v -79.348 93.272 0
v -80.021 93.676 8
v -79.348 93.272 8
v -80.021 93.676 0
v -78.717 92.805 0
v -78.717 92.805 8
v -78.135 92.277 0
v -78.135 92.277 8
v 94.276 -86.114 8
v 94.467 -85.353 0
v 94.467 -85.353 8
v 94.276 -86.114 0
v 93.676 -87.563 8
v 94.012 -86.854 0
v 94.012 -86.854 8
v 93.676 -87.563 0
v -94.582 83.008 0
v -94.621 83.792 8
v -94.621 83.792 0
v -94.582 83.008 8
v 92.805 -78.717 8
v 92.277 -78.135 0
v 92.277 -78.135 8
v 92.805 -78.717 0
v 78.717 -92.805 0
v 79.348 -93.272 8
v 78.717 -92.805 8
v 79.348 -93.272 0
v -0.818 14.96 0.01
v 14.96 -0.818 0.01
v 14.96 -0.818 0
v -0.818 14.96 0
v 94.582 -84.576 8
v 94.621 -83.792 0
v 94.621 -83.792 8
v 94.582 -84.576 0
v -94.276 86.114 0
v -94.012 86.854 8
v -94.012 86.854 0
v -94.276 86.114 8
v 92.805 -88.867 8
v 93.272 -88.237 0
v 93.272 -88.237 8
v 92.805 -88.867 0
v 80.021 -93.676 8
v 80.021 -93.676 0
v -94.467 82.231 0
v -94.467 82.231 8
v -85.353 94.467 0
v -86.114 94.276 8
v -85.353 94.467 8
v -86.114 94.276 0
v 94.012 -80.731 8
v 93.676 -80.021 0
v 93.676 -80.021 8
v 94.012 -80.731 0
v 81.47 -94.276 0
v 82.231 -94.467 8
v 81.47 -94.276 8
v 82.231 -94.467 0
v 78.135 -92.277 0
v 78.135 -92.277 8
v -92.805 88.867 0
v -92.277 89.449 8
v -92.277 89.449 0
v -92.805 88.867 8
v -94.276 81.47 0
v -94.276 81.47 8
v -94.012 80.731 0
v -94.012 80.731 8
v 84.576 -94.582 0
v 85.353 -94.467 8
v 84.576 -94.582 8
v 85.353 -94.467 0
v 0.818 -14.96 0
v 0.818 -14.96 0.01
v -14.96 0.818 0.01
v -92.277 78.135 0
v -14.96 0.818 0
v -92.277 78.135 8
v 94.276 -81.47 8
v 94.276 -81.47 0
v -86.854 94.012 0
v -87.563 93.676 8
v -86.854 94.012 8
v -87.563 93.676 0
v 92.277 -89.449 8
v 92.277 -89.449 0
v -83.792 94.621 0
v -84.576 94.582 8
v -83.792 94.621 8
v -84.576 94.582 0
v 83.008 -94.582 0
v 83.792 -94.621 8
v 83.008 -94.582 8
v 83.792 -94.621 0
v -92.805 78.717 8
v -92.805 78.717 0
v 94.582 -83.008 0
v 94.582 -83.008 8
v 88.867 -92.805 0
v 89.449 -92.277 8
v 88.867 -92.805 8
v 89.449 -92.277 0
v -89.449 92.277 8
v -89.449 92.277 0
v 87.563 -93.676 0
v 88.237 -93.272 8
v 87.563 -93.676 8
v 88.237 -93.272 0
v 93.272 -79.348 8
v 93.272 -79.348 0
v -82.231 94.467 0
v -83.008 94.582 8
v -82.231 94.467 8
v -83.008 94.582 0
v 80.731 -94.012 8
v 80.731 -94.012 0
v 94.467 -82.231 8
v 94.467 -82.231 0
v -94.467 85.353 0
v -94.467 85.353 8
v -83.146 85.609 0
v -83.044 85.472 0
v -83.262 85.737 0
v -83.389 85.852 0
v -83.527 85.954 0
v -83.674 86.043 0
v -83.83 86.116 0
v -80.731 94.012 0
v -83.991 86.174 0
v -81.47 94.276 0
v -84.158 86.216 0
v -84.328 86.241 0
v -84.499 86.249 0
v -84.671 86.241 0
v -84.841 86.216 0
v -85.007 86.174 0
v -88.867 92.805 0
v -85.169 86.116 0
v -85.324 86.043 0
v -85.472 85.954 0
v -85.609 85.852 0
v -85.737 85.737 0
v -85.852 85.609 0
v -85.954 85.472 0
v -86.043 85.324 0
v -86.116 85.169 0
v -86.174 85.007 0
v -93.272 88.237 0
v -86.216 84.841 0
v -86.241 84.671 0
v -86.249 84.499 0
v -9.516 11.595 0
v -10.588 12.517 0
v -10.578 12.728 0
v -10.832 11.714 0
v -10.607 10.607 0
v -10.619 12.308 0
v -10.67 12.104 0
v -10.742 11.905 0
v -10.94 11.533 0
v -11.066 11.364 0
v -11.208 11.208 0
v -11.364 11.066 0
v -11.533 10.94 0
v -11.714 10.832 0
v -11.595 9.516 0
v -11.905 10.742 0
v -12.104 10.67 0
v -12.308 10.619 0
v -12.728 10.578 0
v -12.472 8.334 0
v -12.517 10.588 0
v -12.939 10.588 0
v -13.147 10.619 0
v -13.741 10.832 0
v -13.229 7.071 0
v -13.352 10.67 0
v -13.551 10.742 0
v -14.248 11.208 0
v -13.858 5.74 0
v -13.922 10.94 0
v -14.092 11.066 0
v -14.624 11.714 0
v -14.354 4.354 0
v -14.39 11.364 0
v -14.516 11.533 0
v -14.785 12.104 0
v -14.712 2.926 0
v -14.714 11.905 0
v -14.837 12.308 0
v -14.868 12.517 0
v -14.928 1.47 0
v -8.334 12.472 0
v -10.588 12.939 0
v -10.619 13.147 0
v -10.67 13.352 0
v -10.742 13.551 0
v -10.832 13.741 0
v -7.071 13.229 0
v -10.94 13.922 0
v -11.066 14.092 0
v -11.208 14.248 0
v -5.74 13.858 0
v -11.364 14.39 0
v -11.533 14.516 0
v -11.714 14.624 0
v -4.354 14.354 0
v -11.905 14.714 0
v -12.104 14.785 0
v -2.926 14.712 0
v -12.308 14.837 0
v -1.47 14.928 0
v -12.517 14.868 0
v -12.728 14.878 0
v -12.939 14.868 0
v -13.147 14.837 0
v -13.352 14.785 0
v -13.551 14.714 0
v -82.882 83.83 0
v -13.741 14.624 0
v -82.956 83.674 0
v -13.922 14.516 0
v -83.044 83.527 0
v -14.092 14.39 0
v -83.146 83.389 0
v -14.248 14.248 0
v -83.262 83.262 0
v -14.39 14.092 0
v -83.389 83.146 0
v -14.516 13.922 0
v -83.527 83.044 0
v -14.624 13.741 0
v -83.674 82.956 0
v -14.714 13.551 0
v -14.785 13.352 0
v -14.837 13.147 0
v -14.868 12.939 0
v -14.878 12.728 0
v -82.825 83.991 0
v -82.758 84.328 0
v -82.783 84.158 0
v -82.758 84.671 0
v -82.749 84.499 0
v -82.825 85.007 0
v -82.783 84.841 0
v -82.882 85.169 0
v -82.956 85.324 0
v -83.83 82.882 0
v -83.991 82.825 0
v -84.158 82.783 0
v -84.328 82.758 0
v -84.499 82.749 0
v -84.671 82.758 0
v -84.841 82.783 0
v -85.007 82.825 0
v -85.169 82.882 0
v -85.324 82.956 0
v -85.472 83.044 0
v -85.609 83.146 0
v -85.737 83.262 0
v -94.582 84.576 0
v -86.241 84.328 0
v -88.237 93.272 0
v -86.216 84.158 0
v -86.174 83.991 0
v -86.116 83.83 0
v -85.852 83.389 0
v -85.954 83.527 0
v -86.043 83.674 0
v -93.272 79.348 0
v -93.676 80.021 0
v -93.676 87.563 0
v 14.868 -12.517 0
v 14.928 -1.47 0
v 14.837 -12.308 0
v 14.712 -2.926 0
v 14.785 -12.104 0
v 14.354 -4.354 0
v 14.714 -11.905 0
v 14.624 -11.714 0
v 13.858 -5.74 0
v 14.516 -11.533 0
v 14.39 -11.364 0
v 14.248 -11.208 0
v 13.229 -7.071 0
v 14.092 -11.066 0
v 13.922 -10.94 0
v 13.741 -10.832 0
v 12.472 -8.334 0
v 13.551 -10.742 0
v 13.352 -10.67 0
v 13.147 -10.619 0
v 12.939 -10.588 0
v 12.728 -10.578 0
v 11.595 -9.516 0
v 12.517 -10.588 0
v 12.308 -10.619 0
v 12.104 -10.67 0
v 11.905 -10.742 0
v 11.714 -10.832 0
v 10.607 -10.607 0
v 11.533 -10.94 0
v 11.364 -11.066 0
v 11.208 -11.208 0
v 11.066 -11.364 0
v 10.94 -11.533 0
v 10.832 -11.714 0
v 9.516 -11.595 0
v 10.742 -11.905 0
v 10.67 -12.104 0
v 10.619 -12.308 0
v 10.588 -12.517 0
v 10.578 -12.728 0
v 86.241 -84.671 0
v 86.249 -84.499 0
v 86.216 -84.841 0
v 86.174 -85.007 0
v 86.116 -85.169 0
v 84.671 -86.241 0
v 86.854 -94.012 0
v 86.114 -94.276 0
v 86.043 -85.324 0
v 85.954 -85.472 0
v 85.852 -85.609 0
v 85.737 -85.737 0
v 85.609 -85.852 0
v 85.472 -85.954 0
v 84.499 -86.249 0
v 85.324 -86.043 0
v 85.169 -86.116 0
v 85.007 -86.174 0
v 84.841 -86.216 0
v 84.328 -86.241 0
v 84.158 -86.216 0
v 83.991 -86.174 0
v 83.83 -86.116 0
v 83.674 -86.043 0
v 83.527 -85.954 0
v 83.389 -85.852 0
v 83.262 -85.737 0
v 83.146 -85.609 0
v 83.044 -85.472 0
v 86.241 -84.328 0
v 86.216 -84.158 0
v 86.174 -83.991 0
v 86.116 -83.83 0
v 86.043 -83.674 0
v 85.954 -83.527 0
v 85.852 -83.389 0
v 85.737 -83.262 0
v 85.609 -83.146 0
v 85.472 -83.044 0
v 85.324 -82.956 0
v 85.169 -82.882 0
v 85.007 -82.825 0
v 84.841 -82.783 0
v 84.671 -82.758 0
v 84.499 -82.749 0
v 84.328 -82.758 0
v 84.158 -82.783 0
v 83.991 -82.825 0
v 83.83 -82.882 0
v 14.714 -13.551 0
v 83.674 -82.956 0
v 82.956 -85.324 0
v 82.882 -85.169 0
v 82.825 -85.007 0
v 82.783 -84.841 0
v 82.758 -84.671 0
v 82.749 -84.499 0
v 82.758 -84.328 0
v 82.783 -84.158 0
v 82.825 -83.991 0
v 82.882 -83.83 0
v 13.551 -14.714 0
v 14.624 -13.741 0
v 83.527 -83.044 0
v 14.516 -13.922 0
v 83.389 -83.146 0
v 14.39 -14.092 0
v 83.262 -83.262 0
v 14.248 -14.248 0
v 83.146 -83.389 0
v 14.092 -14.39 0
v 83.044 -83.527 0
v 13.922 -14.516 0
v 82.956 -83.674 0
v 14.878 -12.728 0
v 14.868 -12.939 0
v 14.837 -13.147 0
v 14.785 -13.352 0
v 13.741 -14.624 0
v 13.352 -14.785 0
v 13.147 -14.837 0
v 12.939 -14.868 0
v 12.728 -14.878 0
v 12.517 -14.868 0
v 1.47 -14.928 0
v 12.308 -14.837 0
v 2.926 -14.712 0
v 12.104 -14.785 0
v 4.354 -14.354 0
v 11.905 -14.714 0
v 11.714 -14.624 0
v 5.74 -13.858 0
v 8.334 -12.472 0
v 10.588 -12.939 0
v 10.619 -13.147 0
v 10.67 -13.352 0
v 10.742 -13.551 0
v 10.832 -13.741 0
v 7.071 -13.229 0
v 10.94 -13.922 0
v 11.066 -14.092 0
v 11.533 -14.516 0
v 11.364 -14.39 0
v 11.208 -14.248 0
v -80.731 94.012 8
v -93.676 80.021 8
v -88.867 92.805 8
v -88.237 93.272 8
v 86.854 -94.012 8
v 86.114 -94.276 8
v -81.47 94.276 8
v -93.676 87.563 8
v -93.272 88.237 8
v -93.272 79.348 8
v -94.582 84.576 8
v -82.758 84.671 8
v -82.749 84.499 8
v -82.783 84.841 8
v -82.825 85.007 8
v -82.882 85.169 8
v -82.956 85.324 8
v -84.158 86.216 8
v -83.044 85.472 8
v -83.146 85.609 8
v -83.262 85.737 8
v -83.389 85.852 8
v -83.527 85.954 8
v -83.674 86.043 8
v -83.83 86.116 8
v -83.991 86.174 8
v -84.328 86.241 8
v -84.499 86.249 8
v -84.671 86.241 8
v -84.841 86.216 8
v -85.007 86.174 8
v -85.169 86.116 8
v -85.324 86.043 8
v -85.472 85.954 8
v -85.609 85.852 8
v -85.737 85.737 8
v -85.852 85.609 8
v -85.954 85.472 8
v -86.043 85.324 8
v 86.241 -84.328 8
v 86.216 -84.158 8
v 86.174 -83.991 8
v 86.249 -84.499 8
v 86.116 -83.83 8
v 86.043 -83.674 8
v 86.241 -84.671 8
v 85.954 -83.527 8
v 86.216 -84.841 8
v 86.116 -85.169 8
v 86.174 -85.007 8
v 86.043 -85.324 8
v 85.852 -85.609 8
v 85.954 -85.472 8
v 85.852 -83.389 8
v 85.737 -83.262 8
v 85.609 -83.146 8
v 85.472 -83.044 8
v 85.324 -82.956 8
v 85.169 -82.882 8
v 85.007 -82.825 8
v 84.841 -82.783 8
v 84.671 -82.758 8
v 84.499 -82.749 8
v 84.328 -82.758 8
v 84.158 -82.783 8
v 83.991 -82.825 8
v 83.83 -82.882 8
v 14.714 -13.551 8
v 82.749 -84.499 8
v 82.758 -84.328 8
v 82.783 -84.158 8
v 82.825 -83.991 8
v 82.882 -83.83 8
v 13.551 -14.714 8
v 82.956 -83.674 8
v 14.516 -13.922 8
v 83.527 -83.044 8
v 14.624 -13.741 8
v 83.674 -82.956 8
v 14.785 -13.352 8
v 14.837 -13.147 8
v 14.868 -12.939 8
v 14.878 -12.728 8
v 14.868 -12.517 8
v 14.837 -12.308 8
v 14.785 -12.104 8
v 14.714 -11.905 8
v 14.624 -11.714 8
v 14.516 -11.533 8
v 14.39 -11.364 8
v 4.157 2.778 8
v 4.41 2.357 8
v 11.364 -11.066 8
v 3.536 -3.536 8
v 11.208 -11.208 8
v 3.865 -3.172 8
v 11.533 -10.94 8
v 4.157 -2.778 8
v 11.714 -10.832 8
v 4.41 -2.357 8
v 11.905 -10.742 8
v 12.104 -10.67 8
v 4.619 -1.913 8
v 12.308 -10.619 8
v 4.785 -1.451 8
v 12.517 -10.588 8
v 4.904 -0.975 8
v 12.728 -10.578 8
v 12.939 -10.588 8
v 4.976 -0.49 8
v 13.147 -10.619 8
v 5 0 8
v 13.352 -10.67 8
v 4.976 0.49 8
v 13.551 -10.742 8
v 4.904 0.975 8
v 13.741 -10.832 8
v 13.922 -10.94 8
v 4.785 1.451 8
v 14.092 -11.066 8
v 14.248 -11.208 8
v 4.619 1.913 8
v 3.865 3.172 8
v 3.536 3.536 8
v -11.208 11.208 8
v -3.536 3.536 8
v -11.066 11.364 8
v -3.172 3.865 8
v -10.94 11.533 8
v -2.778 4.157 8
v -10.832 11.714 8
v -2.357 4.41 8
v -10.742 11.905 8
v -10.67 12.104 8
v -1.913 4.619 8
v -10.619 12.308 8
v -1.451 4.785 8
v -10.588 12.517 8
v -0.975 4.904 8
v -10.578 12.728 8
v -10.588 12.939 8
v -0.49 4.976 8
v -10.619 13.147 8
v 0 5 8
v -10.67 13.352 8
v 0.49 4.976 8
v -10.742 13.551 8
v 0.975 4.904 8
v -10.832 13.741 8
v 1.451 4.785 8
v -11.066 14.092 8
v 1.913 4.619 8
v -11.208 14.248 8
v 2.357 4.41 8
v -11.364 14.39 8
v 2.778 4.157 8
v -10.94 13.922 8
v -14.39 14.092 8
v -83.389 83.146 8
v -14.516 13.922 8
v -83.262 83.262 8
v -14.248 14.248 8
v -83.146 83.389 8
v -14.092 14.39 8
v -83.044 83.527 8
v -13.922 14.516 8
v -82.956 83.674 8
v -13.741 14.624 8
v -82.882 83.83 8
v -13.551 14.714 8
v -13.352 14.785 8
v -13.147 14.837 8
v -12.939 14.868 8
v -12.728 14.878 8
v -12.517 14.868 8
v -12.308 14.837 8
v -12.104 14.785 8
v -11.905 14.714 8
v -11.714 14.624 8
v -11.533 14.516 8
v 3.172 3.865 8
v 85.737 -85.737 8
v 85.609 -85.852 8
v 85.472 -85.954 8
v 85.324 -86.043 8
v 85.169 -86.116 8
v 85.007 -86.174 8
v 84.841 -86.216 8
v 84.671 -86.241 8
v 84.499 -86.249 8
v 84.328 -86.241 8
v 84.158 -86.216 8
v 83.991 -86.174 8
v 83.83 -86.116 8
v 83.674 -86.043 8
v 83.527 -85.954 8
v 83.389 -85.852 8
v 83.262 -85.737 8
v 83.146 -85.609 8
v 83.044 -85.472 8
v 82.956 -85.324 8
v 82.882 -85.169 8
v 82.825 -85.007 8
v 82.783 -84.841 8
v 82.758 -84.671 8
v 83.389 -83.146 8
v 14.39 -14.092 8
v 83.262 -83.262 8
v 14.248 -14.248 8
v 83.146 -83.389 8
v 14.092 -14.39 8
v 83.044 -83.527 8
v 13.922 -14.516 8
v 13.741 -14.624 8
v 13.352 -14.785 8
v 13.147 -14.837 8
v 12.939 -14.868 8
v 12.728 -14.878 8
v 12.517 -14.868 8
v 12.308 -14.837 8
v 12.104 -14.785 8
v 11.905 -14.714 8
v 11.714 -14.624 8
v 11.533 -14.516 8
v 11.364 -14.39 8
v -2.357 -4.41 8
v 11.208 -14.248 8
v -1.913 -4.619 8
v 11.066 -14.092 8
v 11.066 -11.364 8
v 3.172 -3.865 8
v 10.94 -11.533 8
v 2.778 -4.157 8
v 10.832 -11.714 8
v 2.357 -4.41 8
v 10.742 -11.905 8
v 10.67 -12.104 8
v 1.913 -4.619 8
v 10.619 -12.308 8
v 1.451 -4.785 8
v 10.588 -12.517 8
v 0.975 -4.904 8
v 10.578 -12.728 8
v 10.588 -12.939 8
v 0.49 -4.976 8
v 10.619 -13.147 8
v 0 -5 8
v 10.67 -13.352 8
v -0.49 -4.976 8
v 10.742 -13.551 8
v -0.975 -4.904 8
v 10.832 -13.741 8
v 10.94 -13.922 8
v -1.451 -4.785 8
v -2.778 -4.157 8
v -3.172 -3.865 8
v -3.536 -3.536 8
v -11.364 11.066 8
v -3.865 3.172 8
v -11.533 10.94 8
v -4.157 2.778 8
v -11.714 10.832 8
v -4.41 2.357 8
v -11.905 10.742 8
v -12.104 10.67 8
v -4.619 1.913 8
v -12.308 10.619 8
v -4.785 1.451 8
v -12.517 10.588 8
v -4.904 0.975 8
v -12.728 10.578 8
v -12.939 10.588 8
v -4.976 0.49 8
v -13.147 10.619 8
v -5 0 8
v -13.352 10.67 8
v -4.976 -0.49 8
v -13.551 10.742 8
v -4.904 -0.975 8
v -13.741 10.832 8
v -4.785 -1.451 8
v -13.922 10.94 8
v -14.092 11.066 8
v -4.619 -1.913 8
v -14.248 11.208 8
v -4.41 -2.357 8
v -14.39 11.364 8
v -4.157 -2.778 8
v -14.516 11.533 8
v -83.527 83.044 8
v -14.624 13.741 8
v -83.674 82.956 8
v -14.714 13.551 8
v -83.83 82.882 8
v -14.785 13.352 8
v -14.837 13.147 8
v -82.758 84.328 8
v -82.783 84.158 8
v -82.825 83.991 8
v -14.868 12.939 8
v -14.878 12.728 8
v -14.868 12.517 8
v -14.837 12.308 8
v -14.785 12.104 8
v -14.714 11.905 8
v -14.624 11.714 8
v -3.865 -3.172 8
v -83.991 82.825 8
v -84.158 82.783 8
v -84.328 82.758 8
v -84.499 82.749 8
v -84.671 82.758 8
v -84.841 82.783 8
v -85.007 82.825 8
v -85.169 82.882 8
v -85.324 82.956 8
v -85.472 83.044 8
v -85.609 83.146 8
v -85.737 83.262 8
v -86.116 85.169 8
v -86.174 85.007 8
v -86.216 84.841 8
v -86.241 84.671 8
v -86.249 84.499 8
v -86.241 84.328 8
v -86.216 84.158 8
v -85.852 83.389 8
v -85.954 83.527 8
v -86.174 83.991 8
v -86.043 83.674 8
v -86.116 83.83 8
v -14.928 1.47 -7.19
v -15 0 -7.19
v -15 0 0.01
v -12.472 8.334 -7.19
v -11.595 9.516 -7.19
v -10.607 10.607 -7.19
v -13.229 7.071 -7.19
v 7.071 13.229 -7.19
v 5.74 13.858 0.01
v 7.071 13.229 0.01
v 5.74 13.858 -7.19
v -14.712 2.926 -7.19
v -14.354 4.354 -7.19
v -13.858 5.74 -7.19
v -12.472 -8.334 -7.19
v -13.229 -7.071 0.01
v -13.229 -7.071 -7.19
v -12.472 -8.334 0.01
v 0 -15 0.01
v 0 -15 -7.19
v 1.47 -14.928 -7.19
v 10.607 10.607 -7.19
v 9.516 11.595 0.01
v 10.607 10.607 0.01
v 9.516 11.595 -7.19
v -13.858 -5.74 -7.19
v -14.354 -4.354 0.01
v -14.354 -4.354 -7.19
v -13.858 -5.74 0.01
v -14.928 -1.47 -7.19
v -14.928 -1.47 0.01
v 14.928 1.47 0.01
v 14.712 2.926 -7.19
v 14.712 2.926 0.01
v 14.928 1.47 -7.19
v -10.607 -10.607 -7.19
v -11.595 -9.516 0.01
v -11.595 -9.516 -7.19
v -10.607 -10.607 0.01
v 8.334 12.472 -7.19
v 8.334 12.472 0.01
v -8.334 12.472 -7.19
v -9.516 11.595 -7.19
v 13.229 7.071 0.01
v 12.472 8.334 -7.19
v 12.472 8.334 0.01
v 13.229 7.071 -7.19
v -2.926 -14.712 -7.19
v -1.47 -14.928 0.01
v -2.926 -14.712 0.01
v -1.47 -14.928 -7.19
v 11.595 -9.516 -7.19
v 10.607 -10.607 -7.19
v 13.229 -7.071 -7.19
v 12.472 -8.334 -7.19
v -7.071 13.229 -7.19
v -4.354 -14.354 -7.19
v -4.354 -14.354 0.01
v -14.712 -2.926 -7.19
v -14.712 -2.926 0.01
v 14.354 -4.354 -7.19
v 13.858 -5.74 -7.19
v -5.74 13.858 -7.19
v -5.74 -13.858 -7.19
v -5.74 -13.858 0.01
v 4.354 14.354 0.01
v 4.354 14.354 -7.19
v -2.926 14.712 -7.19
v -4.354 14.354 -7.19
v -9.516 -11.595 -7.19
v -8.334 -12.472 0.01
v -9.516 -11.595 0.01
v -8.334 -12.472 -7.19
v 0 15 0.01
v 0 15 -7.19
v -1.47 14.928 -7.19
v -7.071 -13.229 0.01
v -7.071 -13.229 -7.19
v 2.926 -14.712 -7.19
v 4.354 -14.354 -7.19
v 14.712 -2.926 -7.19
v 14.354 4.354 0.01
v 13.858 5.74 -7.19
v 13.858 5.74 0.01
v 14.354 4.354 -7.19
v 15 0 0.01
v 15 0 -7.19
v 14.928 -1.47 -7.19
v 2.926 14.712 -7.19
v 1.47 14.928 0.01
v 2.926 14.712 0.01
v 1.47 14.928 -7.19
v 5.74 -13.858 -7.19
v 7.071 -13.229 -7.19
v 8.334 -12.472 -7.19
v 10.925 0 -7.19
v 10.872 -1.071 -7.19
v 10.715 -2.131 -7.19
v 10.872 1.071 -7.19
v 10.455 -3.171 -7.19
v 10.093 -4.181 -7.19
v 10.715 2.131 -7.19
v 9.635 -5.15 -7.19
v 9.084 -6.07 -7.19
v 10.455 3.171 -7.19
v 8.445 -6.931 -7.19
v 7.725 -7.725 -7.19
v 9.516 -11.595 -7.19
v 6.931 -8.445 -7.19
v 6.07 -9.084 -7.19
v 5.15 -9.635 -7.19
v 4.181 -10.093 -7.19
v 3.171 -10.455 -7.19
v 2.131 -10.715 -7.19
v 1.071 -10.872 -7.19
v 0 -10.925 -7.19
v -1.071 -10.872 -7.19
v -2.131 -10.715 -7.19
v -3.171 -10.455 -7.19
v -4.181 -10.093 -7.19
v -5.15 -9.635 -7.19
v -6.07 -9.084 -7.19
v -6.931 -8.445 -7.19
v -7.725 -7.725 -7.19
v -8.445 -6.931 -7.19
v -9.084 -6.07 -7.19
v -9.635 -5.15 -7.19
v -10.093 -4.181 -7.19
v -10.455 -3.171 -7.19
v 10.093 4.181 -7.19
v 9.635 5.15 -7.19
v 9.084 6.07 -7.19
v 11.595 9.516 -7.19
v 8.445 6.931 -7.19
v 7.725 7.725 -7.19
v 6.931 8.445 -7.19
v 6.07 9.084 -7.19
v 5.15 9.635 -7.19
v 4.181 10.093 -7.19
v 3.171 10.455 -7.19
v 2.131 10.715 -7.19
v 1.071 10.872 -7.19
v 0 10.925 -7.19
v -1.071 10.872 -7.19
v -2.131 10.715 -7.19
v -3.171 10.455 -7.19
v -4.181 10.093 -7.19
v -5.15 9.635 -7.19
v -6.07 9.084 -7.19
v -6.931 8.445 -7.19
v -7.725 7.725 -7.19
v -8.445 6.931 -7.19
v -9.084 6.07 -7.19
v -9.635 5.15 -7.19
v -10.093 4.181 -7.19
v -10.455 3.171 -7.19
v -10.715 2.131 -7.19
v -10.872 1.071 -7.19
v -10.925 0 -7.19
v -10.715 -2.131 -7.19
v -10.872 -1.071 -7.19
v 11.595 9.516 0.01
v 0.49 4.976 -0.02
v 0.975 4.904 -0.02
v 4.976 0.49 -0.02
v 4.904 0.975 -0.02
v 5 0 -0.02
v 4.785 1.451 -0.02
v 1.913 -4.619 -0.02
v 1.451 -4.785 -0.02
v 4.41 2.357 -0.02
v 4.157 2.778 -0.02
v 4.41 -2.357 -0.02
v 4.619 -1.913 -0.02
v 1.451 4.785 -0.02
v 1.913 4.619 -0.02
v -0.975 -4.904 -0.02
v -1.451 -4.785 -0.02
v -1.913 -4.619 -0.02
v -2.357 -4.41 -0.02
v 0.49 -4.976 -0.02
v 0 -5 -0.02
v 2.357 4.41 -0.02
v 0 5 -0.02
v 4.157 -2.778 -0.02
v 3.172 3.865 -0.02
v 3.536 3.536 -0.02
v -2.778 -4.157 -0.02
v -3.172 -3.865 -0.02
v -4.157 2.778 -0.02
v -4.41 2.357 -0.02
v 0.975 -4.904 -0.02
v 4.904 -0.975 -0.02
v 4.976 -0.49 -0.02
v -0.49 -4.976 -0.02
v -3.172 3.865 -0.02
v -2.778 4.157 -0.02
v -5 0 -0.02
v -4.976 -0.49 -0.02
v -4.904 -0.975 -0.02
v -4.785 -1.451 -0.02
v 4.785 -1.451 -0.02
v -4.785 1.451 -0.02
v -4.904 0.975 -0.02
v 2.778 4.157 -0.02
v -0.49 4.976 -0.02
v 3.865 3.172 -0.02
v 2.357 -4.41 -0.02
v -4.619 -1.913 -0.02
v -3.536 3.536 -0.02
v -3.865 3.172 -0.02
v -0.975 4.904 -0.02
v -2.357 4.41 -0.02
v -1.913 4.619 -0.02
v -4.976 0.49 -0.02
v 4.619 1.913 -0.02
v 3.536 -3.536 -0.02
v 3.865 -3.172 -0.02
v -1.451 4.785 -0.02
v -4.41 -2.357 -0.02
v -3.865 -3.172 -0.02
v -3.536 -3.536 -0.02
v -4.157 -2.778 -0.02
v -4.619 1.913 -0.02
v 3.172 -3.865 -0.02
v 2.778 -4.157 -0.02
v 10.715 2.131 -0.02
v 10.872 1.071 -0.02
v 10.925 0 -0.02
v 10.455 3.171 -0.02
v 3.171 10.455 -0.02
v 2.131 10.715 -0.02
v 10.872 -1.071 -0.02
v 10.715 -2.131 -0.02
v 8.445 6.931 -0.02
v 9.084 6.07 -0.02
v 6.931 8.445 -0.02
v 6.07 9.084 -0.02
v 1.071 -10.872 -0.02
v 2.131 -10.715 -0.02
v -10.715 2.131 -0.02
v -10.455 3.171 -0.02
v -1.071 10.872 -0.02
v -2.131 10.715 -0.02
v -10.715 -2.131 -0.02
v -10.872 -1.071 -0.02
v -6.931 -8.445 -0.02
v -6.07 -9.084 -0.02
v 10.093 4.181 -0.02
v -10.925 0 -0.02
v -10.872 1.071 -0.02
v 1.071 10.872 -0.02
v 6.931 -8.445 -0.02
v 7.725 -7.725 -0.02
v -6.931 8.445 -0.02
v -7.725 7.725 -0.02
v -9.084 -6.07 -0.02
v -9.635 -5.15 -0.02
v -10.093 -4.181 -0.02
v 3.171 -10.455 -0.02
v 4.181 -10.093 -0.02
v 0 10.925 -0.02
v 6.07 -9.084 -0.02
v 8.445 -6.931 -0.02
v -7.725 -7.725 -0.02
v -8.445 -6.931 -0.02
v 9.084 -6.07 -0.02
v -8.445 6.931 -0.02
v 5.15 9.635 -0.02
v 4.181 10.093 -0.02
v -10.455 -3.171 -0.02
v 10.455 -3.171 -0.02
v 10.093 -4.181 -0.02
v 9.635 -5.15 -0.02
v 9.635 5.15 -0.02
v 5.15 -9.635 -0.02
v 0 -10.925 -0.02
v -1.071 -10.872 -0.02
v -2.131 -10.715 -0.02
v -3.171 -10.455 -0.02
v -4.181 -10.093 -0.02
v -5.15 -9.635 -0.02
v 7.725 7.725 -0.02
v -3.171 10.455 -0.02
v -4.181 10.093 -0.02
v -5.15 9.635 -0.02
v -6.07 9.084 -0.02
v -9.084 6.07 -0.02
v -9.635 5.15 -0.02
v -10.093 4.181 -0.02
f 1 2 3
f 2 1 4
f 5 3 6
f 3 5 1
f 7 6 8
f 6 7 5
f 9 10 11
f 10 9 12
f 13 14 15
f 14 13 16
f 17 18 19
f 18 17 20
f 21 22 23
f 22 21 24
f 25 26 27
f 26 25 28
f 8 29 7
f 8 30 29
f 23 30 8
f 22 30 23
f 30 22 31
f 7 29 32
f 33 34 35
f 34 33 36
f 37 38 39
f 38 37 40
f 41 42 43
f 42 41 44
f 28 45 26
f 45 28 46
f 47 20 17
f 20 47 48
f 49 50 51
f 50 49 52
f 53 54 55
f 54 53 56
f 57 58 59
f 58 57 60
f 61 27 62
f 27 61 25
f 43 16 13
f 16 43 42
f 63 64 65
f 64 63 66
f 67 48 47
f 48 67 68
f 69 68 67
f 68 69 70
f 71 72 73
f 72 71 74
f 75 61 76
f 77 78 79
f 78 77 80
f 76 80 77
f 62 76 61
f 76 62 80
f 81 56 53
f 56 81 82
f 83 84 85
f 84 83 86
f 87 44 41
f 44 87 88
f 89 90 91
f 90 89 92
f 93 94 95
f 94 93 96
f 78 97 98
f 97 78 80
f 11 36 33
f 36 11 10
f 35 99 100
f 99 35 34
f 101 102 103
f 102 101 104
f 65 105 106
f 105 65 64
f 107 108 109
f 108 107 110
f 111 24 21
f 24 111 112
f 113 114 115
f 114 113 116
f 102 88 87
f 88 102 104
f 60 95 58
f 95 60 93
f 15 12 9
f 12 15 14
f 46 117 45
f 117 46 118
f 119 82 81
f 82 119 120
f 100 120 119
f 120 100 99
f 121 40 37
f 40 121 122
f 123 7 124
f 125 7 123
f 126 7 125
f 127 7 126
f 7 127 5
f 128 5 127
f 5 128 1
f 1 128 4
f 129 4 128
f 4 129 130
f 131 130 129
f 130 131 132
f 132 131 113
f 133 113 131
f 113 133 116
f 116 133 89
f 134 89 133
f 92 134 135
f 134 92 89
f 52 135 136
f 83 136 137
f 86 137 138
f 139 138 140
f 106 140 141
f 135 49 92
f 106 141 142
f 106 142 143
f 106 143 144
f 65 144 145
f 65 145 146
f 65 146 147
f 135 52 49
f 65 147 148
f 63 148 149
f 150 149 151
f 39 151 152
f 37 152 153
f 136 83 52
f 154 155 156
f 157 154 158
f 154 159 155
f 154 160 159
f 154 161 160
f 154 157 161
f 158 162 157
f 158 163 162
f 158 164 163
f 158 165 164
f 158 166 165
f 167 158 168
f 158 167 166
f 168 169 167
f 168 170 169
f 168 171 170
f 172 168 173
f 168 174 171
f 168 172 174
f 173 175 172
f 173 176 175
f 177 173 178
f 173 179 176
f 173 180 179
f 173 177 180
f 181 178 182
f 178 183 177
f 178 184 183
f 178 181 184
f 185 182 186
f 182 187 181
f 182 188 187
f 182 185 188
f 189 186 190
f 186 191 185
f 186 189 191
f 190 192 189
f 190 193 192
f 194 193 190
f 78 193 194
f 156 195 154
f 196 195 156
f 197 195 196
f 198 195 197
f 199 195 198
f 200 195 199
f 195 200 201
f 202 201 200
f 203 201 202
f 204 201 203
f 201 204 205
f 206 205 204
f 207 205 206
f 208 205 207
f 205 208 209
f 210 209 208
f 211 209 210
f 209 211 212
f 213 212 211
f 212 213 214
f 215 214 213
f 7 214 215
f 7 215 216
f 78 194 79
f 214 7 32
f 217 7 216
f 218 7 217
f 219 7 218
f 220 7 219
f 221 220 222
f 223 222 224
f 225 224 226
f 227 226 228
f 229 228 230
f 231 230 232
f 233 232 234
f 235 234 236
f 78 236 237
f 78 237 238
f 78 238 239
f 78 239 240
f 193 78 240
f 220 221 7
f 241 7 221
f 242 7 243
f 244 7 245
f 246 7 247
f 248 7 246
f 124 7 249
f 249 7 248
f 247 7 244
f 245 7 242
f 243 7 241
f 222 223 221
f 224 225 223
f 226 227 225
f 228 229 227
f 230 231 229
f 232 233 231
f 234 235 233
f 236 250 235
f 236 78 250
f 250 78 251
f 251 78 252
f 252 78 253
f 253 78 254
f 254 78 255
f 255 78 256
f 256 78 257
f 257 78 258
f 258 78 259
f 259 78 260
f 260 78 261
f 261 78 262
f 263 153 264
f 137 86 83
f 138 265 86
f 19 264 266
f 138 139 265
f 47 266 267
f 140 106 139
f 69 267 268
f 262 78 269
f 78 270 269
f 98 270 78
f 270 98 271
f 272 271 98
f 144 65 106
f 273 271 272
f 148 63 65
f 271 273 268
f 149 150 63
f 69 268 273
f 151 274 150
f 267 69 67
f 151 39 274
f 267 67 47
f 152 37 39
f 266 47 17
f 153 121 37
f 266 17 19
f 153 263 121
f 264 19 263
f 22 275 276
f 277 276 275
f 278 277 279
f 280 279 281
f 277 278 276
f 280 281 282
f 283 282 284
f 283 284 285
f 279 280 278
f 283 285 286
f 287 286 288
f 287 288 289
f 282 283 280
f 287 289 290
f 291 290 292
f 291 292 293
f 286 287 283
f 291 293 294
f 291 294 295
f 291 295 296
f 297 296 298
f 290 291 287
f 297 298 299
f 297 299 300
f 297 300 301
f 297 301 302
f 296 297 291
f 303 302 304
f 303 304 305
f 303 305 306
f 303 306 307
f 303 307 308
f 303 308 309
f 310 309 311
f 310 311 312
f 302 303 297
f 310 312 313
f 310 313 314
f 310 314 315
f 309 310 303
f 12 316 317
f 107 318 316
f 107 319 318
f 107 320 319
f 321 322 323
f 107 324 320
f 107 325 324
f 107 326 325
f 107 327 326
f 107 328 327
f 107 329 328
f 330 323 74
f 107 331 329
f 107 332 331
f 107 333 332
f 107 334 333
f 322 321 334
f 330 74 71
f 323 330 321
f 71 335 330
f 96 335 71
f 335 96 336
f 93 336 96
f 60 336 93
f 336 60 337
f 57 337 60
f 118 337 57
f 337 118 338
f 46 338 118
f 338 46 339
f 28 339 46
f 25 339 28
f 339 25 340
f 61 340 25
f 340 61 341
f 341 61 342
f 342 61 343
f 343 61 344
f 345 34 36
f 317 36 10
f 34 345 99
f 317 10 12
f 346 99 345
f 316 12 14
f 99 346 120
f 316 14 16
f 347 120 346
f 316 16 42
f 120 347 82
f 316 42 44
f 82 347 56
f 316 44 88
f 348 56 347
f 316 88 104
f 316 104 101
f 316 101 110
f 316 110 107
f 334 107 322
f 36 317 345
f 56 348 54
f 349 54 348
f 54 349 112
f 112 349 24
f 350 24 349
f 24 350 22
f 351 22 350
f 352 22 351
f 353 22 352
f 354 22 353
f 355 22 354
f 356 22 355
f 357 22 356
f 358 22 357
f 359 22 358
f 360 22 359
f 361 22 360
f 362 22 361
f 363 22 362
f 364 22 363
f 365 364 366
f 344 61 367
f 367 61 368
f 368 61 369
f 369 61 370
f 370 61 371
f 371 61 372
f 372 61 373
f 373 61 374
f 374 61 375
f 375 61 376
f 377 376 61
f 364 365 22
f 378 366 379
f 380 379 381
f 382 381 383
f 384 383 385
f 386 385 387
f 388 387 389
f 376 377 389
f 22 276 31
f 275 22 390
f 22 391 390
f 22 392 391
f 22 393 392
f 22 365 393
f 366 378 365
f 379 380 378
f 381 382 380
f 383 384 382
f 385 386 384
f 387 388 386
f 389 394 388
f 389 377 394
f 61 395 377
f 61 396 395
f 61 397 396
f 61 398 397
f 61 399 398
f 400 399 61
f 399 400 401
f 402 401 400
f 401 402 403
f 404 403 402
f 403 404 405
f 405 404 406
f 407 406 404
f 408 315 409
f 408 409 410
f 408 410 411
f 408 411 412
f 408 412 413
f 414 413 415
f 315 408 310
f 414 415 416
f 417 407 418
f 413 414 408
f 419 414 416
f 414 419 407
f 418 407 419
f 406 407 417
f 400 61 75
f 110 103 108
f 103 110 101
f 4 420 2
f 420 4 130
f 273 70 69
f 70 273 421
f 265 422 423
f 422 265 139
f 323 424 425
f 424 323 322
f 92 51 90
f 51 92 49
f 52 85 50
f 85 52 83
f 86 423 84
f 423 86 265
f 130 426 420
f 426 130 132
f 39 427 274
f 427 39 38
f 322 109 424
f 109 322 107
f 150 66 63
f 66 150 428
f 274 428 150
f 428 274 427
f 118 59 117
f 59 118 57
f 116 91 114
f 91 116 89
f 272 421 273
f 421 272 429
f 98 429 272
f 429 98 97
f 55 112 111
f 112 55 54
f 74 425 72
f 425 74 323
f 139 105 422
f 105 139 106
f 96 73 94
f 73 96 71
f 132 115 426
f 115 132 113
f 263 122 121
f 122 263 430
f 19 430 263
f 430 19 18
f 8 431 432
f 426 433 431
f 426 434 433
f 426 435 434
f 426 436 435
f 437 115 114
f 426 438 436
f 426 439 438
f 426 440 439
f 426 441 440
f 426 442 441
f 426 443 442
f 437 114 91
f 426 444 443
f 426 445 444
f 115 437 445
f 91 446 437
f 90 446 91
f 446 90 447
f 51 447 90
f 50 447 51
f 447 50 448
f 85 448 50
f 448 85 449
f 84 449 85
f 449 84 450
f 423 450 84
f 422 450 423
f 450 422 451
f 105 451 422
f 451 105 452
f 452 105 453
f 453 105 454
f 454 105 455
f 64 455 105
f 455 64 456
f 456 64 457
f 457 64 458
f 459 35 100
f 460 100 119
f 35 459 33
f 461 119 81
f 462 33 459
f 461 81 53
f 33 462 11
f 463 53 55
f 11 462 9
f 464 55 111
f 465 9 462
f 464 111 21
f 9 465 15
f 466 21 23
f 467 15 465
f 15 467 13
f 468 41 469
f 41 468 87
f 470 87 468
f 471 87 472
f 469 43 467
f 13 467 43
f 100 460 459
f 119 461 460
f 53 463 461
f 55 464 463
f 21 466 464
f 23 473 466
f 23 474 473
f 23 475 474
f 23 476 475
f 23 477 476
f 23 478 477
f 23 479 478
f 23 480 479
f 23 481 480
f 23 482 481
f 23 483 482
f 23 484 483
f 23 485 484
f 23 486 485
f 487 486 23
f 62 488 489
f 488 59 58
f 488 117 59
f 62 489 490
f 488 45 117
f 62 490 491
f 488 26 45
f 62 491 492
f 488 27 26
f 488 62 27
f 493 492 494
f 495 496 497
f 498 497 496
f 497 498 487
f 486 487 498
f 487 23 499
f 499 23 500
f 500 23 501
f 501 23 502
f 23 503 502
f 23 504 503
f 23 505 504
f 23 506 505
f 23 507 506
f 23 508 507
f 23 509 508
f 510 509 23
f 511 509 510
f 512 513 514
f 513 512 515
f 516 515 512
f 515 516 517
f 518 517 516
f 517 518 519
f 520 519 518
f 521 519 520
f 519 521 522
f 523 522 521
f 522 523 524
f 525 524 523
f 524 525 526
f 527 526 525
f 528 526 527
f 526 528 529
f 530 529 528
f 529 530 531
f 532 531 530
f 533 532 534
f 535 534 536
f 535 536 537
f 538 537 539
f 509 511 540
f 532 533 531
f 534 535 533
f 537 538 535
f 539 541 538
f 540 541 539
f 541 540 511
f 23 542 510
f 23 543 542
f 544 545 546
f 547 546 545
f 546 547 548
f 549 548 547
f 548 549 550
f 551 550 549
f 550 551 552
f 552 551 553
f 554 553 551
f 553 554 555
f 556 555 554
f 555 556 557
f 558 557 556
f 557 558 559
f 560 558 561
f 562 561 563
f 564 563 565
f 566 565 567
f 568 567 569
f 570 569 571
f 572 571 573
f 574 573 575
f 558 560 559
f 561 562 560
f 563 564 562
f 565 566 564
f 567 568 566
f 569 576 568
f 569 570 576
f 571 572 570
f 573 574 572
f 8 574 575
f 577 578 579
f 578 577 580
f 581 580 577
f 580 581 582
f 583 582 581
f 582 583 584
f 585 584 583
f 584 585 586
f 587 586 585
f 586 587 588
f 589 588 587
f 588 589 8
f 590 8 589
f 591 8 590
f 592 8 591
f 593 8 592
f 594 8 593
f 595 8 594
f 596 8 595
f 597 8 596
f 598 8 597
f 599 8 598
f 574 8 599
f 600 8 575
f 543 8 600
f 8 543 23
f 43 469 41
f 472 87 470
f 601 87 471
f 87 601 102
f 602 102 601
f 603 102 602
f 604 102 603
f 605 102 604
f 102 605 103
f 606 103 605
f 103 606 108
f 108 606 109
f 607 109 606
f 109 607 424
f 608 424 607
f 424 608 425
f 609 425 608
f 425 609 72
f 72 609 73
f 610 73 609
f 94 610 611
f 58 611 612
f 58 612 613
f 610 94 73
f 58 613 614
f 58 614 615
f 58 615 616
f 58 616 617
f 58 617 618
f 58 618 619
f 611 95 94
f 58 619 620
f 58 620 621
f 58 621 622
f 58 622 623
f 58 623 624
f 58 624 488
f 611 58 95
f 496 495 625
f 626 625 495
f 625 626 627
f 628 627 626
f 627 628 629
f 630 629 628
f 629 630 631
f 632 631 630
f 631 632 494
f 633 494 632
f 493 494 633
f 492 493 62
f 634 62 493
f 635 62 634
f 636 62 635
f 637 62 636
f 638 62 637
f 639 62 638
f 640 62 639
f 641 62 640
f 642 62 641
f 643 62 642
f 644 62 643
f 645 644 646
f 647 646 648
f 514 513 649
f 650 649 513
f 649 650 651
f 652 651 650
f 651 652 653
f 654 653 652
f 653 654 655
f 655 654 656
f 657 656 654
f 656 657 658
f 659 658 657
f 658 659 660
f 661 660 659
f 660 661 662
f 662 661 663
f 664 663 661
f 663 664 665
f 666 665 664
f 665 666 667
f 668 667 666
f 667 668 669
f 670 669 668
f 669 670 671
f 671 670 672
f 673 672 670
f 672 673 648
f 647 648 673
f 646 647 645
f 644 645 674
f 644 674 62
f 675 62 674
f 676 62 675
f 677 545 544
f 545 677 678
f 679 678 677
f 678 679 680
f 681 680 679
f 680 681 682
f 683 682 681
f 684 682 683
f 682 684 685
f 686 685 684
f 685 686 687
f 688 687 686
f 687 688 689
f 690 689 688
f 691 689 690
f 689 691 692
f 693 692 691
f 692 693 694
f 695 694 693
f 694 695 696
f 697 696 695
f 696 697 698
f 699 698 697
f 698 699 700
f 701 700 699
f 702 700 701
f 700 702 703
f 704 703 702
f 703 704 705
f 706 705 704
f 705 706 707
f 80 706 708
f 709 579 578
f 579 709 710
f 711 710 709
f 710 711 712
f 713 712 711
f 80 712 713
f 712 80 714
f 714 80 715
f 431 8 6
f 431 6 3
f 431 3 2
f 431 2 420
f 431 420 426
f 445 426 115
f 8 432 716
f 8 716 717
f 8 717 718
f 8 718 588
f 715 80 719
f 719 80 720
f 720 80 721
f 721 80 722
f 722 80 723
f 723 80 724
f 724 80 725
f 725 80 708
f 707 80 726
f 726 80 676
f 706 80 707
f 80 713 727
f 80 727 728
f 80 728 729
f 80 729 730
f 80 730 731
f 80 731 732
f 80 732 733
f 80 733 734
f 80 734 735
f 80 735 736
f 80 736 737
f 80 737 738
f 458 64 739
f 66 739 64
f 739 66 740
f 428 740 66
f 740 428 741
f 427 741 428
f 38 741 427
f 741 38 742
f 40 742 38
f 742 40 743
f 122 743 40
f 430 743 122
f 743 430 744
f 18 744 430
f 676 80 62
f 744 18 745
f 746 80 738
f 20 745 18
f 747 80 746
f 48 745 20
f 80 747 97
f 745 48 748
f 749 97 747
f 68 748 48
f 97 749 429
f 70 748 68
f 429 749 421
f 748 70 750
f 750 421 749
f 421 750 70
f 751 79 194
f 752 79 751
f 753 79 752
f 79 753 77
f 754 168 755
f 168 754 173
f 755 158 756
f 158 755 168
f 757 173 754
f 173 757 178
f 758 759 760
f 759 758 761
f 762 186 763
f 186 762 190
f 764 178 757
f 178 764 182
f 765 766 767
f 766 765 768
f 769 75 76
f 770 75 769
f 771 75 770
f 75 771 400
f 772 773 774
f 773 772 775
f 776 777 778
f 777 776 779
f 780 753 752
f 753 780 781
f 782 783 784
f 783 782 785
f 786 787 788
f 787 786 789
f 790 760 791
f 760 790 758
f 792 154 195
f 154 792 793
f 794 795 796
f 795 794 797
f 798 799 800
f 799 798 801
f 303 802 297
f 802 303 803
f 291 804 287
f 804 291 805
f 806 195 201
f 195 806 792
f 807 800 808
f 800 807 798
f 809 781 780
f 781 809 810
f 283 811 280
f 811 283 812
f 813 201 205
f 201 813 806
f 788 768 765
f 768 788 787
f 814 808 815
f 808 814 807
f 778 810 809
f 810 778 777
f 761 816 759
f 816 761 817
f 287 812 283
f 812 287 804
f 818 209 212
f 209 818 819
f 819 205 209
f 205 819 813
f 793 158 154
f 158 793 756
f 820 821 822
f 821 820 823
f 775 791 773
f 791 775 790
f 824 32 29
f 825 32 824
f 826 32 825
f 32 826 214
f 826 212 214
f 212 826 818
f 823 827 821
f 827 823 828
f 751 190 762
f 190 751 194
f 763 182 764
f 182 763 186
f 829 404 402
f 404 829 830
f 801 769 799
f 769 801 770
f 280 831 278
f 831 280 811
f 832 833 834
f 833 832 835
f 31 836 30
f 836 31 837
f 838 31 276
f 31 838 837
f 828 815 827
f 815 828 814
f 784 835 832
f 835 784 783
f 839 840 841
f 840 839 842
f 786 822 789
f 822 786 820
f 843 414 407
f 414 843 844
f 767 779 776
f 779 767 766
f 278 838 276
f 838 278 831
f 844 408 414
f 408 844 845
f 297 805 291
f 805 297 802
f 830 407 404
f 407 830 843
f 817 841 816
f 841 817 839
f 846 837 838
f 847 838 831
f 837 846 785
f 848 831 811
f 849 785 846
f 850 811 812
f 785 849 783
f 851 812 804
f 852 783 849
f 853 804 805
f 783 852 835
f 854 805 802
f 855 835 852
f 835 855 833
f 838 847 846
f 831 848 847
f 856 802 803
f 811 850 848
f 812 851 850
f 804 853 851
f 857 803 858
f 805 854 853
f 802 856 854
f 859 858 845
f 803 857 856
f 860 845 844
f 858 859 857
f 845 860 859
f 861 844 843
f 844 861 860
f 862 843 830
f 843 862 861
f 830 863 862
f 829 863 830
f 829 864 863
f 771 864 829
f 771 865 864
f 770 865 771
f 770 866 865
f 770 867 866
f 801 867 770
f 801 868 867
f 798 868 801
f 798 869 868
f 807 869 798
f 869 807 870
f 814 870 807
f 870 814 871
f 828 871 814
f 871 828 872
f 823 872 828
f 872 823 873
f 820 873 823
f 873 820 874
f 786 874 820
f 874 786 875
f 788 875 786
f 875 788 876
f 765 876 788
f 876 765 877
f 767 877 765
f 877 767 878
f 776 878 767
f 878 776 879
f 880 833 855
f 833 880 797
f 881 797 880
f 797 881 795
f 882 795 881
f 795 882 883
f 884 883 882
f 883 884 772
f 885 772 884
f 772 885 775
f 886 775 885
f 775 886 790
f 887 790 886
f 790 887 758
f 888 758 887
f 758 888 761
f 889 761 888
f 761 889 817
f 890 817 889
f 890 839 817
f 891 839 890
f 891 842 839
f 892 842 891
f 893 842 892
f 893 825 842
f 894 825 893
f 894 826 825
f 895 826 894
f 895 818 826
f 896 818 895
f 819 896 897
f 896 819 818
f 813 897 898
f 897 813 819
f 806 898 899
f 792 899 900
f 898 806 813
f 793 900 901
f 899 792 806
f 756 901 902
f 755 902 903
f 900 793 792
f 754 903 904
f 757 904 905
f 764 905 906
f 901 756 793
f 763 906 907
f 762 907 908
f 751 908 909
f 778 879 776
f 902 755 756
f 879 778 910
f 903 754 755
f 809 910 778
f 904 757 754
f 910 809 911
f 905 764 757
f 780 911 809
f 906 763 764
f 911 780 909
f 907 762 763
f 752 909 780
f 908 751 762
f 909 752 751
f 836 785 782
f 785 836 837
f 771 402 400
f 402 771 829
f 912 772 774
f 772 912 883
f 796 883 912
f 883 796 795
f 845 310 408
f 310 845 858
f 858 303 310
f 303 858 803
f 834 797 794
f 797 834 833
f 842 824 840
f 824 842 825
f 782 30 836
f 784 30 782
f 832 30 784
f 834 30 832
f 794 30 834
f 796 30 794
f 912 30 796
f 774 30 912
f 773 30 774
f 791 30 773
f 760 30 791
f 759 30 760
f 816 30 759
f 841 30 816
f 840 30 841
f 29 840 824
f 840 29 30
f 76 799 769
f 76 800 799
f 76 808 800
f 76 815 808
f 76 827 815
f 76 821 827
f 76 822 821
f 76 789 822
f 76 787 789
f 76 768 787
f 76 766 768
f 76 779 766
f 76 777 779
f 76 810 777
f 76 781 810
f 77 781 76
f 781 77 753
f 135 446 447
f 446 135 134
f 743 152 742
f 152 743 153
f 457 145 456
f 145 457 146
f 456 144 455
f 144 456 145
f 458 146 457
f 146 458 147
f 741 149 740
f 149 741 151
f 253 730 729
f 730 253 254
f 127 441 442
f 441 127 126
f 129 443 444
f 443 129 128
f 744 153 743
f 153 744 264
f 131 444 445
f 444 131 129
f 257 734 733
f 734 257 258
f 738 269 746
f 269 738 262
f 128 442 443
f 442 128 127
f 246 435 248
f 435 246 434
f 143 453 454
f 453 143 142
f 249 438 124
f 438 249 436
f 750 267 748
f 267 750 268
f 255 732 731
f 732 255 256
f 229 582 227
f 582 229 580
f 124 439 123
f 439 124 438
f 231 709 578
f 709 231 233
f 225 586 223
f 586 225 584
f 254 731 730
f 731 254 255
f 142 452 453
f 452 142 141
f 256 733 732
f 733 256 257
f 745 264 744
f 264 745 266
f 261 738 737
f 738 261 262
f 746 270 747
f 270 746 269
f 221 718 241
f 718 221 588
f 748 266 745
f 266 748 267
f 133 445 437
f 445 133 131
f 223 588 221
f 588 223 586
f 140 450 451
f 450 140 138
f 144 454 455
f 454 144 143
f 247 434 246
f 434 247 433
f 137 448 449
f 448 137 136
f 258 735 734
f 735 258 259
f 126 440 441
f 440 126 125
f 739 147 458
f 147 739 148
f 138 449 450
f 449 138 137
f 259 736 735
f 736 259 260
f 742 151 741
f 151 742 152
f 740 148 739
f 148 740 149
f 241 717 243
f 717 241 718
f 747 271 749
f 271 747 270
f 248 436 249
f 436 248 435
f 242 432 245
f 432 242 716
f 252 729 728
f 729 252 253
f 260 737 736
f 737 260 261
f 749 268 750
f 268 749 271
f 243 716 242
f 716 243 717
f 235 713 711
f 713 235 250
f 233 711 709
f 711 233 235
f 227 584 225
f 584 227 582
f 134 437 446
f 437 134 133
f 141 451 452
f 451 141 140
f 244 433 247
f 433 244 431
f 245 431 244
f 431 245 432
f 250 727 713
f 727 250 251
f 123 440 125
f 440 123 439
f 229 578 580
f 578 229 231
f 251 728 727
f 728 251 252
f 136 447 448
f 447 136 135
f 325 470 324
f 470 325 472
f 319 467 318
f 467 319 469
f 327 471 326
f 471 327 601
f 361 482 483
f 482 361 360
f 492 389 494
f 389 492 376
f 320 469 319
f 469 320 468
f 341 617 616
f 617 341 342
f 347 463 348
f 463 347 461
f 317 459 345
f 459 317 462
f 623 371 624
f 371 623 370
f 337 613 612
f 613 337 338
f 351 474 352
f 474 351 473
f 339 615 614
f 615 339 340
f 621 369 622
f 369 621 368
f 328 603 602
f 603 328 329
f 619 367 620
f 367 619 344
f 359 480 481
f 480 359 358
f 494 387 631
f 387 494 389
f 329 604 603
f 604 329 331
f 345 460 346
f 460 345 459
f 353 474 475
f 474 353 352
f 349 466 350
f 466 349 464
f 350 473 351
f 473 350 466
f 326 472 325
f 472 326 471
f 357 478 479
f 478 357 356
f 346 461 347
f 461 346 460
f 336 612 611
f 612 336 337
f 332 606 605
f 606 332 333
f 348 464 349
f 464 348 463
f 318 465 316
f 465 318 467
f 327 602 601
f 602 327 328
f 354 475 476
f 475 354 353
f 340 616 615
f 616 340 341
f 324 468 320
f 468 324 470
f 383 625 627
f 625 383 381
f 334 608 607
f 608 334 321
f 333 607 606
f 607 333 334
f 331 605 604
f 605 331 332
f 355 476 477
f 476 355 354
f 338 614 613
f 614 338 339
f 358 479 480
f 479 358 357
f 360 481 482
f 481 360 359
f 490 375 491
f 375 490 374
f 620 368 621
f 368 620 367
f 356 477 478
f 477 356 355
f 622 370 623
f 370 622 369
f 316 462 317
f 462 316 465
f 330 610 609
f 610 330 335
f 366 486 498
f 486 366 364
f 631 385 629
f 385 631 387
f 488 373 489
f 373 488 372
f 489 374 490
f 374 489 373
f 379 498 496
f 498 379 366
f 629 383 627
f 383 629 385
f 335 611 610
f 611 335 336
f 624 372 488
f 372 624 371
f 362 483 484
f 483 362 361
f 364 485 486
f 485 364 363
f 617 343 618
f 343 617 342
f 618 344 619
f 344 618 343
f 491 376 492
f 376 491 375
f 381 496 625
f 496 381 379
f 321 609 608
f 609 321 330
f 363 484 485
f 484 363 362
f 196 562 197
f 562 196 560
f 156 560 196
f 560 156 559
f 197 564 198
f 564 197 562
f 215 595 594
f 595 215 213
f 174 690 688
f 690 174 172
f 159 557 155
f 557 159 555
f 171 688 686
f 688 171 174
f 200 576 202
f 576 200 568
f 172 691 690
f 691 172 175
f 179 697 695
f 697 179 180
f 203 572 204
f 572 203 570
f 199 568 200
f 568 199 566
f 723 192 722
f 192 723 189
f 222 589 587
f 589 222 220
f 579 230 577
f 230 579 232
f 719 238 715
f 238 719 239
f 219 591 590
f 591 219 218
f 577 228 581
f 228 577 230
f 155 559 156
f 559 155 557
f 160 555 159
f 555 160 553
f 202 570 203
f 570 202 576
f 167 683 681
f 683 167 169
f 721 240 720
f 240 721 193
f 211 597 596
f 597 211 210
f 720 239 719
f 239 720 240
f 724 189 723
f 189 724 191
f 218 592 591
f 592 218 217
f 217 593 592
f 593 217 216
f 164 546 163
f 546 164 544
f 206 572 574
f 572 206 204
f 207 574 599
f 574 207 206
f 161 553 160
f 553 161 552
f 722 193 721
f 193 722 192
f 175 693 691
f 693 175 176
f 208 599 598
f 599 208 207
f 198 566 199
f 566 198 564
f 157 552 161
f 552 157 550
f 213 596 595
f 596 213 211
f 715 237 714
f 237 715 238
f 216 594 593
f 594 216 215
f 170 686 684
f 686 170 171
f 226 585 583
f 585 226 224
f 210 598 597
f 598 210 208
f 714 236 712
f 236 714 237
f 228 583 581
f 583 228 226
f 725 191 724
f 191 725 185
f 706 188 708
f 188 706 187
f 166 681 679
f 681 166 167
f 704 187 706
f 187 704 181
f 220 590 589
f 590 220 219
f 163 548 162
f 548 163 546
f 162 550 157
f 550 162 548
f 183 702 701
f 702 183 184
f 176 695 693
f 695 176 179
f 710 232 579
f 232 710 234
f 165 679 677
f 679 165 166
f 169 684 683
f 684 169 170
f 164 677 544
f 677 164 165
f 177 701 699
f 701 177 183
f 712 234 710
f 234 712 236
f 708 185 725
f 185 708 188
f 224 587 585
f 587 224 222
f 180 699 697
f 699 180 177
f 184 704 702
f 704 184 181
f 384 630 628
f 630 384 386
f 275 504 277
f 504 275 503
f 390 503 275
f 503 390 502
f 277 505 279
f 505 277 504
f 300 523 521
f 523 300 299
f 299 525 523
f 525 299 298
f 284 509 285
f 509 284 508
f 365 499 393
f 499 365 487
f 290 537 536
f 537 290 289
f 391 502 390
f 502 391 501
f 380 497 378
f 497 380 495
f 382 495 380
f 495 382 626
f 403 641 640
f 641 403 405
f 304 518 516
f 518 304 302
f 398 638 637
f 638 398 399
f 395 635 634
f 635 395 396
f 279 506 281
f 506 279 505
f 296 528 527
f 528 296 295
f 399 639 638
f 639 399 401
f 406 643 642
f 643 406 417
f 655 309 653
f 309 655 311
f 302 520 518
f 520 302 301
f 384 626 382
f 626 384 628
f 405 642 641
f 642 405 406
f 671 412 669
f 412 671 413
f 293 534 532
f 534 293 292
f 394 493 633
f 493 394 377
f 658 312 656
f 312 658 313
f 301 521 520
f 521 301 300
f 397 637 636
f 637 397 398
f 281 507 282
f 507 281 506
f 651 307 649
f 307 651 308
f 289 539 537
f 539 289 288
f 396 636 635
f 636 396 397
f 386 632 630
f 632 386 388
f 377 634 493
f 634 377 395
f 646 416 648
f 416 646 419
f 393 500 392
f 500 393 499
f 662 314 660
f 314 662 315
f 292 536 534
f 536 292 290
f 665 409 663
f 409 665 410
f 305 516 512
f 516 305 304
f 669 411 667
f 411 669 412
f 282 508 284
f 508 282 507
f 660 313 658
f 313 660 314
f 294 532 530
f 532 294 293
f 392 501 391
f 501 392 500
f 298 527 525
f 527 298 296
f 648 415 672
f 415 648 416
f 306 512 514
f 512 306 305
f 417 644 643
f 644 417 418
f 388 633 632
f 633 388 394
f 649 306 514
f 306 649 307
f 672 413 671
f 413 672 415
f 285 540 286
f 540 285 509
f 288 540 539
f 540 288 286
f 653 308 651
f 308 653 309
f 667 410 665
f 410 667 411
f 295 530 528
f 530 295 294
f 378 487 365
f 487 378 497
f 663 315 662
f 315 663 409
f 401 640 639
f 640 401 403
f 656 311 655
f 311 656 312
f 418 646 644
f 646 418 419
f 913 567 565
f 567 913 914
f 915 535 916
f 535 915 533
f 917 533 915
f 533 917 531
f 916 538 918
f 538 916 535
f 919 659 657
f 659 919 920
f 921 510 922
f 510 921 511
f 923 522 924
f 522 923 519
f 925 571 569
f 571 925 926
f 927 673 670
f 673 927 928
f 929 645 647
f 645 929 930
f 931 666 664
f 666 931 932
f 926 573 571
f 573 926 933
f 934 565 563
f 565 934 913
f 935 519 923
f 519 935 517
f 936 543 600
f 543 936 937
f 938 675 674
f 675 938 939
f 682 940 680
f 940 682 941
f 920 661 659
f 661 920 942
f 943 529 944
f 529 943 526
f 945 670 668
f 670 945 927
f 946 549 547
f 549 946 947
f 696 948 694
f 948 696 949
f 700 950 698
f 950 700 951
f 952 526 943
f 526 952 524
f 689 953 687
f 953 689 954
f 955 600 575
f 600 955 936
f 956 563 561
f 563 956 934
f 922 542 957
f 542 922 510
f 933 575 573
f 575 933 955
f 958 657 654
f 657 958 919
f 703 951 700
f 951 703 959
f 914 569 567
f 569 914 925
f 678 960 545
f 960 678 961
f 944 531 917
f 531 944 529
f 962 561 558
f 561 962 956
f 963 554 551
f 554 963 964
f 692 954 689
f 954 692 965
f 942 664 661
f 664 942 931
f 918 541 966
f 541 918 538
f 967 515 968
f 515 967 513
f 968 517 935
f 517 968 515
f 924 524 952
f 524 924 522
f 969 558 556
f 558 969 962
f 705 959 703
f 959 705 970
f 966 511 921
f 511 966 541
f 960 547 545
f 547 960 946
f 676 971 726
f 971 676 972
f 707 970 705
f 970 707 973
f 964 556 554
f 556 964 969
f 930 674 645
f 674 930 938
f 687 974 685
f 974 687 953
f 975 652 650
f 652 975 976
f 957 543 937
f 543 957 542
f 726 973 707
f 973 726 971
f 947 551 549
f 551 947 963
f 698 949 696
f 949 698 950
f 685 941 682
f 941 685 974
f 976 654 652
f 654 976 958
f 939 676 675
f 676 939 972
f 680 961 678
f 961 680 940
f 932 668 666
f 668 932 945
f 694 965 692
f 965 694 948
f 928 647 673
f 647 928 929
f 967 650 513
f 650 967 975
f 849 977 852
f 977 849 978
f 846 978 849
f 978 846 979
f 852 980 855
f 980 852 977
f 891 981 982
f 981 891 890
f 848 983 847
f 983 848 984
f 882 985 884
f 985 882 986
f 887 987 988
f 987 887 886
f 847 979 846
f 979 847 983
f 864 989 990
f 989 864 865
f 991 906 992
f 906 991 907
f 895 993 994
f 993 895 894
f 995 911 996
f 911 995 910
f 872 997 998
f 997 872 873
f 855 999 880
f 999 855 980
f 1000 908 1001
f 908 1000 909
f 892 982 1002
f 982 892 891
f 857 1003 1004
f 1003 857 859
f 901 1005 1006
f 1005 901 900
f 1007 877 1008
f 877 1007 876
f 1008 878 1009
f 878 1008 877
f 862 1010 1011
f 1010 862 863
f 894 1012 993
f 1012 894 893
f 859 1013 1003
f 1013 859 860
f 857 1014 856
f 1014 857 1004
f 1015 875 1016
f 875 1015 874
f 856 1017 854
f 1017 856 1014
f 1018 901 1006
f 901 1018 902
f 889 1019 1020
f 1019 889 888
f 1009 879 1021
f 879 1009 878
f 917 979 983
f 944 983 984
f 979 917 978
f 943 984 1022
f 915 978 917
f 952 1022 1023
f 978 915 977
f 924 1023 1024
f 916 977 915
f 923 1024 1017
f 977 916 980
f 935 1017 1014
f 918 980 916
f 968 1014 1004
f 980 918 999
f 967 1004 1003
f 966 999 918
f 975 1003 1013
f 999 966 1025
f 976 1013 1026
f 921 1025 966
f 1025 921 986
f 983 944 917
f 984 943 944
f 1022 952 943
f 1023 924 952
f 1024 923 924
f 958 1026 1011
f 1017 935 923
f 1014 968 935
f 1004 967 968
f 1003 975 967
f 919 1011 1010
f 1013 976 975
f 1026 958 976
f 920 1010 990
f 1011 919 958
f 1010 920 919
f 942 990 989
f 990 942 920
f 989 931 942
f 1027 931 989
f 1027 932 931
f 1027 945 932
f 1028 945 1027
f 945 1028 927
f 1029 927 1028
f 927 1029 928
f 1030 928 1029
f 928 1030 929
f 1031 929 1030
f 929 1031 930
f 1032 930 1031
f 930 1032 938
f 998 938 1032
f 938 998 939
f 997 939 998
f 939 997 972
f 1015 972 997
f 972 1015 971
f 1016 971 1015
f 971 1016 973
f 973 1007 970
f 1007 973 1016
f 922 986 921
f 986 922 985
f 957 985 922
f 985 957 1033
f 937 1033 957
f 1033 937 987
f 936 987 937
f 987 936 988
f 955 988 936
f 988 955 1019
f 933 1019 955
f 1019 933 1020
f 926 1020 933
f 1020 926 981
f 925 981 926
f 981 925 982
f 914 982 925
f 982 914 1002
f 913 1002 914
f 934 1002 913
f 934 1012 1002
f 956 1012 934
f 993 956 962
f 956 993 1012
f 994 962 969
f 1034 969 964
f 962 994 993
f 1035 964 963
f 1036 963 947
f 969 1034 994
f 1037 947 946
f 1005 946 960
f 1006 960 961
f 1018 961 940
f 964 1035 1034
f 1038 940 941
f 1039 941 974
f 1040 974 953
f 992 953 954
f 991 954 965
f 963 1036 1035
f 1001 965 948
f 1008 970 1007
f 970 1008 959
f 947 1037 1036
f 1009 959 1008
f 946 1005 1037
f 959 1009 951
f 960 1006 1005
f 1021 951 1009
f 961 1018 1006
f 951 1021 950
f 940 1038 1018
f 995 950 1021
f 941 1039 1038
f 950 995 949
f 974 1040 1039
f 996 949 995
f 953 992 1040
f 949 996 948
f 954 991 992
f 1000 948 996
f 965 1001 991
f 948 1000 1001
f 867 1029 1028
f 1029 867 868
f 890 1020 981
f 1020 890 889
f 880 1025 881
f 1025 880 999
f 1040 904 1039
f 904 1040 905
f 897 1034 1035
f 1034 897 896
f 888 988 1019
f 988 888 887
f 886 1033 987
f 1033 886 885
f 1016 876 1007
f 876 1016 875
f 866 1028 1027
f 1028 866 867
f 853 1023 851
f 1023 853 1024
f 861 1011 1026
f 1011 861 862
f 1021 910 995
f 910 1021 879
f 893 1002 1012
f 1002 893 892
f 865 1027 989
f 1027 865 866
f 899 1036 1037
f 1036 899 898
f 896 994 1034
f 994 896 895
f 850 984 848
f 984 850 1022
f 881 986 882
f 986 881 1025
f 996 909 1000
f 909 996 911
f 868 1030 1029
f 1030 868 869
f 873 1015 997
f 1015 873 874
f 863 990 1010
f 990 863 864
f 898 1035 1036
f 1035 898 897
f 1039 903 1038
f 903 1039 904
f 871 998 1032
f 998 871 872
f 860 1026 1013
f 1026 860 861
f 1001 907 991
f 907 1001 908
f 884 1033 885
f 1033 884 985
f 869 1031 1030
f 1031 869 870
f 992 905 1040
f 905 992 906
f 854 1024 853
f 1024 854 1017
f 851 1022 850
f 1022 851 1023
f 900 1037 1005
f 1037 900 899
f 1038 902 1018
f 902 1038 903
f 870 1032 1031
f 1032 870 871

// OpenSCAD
// Gen-CX — rear BEARING BRIDGE (bar endbell, 2026-10-10): a 608 boss on a 20 mm wide bar that spans the
// two frame rods at 135 deg and 135+180 deg (R = flange_bolt_r). The front bridge uses the rods at 45/225 deg, the rear
// bridge the rods at 135/315 deg, so the two bridges cross at 90 deg and the stator is held at 4 points.
// A bar instead of a full disc is what lets this big-ring kit fit ONE 410 mm plate. Print flat face DOWN (boss up, no supports).
// Brace holes (temporary M4 jack rods, R = brace_r) sit on the bar axis.
include <parameters.scad>;
$fn = 64;
bar_w = 20;
bar_len = 2 * (flange_bolt_r + 9);
module bar_2d() { offset(r=8) offset(delta=-8) square([bar_len, bar_w], center=true); }
difference() {
    rotate([0, 0, 135]) union() {
        linear_extrude(endbell_thick) bar_2d();
        translate([0, 0, -bearing_h + 0.01]) cylinder(d=30, h=bearing_h);
    }
    translate([0, 0, -bearing_h - 0.1]) cylinder(d=endbell_shaft_clear, h=50);
    translate([0, 0, -bearing_h - 0.02]) cylinder(d=bearing_d, h=bearing_h);
    for (s = [0, 180]) rotate([0, 0, 135 + s]) translate([flange_bolt_r, 0, -20]) cylinder(d=m3_clear, h=60);
    for (a = brace_angles) translate([brace_r*cos(a), brace_r*sin(a), -20]) cylinder(d=brace_d, h=50);
}
